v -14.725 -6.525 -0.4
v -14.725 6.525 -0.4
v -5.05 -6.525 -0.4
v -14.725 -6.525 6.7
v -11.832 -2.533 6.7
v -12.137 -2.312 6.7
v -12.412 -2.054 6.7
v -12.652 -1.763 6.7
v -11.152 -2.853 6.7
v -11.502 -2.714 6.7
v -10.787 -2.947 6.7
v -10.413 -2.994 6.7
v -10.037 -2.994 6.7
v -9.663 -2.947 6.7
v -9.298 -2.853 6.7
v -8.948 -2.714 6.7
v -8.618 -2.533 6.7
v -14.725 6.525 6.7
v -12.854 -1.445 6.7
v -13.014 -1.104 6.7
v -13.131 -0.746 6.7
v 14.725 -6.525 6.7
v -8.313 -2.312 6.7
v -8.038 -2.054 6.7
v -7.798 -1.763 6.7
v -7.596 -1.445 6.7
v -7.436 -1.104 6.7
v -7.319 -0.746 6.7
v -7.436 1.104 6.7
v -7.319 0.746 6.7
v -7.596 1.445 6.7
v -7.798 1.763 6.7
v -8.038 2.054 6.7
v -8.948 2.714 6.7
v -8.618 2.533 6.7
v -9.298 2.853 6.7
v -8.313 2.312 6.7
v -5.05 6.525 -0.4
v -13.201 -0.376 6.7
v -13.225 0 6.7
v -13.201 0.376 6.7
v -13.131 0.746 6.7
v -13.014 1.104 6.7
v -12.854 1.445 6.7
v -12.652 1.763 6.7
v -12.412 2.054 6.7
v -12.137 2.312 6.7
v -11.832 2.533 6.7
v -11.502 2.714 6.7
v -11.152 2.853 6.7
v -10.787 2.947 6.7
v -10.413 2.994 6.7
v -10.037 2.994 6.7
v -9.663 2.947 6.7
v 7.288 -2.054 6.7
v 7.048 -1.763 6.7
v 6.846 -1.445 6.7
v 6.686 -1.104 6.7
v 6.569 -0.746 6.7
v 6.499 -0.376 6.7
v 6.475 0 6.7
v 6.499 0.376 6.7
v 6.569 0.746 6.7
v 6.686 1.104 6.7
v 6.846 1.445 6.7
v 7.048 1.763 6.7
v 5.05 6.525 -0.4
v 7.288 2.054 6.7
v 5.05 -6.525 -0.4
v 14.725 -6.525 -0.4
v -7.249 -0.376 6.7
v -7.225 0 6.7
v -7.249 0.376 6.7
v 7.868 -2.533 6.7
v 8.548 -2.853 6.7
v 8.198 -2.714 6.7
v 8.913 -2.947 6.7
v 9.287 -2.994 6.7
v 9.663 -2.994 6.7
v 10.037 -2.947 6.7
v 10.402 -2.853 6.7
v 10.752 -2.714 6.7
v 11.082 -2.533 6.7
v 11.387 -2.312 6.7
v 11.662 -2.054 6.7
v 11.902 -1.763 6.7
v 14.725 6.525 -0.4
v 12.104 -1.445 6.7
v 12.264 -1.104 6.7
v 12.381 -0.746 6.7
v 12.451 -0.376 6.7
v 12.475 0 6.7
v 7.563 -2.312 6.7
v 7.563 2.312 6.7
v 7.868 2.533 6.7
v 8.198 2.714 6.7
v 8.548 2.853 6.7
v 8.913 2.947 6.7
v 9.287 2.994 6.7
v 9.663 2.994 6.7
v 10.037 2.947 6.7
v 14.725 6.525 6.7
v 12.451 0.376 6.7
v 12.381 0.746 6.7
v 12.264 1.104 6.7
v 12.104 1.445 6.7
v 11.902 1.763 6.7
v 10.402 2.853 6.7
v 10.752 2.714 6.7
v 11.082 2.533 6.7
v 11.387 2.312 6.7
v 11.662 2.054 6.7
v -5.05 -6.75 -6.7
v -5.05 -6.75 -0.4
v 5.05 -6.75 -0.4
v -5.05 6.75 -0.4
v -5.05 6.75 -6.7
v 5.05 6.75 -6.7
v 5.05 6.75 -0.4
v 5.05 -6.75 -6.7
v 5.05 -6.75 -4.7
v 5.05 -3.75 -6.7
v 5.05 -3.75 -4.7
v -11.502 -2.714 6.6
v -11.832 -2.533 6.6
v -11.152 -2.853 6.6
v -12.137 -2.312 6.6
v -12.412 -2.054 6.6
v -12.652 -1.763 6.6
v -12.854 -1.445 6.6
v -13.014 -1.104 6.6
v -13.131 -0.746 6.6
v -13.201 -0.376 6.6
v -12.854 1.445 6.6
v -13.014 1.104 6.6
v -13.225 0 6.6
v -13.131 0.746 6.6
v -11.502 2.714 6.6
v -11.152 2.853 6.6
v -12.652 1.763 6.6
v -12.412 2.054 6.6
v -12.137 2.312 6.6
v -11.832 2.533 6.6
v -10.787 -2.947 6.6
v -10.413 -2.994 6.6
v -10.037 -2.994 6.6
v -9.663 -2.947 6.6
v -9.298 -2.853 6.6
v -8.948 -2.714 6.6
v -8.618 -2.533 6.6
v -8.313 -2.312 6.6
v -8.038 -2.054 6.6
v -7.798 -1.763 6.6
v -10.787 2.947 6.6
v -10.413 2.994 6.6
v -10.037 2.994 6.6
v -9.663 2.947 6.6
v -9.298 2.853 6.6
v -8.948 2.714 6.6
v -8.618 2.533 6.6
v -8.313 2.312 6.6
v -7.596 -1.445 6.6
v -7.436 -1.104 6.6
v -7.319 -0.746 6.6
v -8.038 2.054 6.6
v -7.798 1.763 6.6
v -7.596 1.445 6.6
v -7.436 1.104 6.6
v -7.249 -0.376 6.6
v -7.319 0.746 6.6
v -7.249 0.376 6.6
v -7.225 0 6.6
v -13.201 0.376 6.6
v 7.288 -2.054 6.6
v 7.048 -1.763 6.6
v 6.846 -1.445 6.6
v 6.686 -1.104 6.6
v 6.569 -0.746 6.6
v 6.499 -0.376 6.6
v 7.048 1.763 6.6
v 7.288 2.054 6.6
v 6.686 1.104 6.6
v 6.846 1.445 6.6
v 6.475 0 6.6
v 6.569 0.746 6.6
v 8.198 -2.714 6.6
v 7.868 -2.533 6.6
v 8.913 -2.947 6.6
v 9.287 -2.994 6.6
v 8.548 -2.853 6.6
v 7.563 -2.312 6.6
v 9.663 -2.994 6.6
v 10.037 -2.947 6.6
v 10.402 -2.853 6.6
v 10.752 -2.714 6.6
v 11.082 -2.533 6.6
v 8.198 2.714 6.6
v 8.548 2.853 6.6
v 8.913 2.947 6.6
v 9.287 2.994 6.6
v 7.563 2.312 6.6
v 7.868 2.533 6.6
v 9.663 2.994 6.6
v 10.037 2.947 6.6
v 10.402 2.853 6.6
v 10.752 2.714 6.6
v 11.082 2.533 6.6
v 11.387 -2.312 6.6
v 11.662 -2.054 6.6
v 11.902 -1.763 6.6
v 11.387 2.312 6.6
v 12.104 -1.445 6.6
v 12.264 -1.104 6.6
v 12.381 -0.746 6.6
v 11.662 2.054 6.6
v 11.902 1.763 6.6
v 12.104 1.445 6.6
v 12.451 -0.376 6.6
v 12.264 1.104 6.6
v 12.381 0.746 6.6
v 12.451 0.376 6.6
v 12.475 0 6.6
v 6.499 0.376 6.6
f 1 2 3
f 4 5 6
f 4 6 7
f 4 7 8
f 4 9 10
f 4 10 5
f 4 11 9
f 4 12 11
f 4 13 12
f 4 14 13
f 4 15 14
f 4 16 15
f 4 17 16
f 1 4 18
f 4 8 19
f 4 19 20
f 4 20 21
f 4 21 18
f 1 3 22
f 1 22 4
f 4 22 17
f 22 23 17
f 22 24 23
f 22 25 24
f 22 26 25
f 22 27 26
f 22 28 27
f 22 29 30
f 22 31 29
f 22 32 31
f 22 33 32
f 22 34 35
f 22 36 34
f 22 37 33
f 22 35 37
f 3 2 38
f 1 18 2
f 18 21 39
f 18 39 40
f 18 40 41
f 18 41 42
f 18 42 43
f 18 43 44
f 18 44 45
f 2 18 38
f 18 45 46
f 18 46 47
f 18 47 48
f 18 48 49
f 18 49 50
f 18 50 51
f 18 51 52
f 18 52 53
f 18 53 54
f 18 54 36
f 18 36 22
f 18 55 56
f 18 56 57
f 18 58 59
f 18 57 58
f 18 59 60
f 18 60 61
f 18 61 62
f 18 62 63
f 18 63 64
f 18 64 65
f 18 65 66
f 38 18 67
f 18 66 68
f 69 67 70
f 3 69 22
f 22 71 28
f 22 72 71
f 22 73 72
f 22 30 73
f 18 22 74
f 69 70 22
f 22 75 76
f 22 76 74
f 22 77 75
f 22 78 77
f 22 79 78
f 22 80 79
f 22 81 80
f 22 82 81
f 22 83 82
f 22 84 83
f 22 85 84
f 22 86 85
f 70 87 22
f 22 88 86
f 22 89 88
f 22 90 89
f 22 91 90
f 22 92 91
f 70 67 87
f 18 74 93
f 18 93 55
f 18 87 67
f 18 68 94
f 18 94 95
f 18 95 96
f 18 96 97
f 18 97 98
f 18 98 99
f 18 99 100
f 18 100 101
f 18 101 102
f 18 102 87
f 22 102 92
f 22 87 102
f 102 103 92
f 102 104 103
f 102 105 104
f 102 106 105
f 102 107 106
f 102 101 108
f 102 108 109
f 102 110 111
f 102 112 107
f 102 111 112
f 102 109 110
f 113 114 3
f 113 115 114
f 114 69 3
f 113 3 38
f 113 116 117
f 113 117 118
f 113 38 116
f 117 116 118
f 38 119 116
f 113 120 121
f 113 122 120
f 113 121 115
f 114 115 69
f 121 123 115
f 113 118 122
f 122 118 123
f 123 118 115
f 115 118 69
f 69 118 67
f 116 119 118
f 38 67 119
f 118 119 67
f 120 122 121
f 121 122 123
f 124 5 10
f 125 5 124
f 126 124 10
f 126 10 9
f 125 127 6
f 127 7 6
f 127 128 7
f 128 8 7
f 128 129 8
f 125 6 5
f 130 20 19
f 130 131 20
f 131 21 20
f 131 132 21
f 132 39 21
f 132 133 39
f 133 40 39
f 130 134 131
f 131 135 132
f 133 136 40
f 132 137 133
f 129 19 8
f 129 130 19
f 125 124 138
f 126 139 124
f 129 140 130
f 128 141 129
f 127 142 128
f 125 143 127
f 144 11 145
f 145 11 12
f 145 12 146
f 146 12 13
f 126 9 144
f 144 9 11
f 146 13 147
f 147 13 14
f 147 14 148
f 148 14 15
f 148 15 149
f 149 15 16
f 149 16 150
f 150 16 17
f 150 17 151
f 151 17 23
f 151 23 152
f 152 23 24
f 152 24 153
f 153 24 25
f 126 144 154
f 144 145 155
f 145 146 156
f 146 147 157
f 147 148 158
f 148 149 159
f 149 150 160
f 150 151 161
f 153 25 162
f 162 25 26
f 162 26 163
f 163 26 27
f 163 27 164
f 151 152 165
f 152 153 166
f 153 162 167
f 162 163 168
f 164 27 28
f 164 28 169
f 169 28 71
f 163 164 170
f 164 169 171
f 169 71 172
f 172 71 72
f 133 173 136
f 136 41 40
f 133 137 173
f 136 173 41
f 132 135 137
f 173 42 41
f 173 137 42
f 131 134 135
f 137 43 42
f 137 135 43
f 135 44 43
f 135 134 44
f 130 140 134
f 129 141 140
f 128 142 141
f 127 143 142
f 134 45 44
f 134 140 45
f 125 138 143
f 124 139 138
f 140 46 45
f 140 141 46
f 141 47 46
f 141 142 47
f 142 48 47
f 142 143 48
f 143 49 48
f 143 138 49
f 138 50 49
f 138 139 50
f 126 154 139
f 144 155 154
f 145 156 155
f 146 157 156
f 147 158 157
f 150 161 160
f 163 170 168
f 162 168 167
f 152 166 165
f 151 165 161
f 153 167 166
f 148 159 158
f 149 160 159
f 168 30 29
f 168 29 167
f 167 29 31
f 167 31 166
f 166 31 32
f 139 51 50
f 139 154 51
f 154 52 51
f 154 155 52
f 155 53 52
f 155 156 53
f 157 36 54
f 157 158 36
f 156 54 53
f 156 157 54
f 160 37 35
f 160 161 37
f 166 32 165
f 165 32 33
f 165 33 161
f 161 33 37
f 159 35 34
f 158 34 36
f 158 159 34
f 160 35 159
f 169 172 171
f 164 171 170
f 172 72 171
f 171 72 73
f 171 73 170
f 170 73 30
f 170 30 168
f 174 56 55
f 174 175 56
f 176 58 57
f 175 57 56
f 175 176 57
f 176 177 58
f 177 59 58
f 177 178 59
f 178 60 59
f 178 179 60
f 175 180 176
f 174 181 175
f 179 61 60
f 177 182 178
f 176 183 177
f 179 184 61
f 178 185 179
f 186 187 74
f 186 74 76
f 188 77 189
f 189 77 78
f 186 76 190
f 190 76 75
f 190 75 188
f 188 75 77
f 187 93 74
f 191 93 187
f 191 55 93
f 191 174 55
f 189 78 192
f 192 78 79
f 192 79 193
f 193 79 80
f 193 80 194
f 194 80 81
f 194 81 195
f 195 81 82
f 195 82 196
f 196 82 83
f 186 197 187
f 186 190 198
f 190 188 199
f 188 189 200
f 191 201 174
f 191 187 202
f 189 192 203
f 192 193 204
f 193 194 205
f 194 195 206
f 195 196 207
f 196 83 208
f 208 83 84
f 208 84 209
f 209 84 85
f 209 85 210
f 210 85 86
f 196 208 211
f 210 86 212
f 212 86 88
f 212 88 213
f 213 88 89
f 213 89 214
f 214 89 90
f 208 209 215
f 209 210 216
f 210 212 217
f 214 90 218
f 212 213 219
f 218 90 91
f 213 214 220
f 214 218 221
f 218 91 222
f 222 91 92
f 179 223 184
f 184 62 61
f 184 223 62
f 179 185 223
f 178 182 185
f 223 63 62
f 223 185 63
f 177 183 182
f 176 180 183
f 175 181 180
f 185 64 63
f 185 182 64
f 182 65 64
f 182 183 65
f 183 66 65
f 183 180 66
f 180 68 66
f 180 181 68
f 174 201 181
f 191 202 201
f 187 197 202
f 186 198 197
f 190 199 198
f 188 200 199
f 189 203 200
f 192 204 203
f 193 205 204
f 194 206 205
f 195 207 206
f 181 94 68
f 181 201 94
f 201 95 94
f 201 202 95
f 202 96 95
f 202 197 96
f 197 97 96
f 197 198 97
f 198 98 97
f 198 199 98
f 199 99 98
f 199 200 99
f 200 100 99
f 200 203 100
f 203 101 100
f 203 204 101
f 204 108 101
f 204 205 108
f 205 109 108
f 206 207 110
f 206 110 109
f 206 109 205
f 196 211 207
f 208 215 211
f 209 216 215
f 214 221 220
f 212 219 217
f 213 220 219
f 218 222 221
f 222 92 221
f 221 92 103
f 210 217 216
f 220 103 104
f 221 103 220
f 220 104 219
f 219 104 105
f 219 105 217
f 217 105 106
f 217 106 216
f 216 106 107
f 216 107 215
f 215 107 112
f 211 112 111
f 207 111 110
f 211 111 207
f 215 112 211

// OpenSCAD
// Sharp GP2Y0D413K0F Distance Sensor Modeling
// Units: mm

$fn = 50;

// --- Dimensions from Datasheet ---
total_width = 29.45;
total_height = 13.5;
lens_case_height = 13.05; // From side view
lens_case_depth = 7.1;    // From side view
pwb_depth = 6.3;          // From side view
total_depth = lens_case_depth + pwb_depth;

lens_dist_from_edge = 4.5;
lens_spacing = 19.7;
lens_diameter = 6.0;      // Estimated from visual scale

connector_width = 10.1;
connector_height = 3.0;   // Estimated

// --- Coordinate Transformation ---
// The origin (0,0,0) is the center of the bounding box.
// Z+ is the lens face, Z- is the PWB/Connector side.

module sensor_gp2y0d413k0f() {
    union() {
        // 1. Main Lens Case (Front part)
        // Positioned so the front face is at Z = total_depth / 2
        translate([0, 0, (total_depth / 2) - (lens_case_depth / 2)])
        cube([total_width, lens_case_height, lens_case_depth], center = true);

        // 2. PWB / Base part (Back part)
        // Positioned so the back face is at Z = -total_depth / 2
        translate([0, 0, (-total_depth / 2) + (pwb_depth / 2)])
        cube([connector_width, total_height, pwb_depth], center = true);
        
        // 3. Connector (Added detail at the bottom)
        translate([0, -(total_height/2) + (connector_height/2), -total_depth/2 + 1])
        cube([connector_width, connector_height, 2], center = true);
    }

    // Subtract Lens Holes
    difference() {
        // Dummy object to perform subtraction on the whole assembly
        // (The union above is used for the actual geometry)
        // We use a large cylinder to clear the front face
        translate([0,0,0]) cube([total_width, total_height, total_depth], center=true);
        
        // Left Lens (Light Emitter)
        translate([-(total_width/2) + lens_dist_from_edge, 0, total_depth/2])
        cylinder(h = lens_case_depth + 2, d = lens_diameter, center = false);
        
        // Right Lens (Light Detector)
        translate([-(total_width/2) + lens_dist_from_edge + lens_spacing, 0, total_depth/2])
        cylinder(h = lens_case_depth + 2, d = lens_diameter, center = false);
    }
}

// Note: To correctly use 'difference' with the 'union' above, 
// we must structure the code to subtract from the union.
// Revised structure for OpenSCAD logic:

module final_model() {
    difference() {
        // The body
        union() {
            // Lens Case
            translate([0, 0, (total_depth / 2) - (lens_case_depth / 2)])
            cube([total_width, lens_case_height, lens_case_depth], center = true);

            // PWB/Base
            translate([0, 0, (-total_depth / 2) + (pwb_depth / 2)])
            cube([connector_width, total_height, pwb_depth], center = true);
            
            // Connector protrusion
            translate([0, -(total_height/2) + (connector_height/2), -total_depth/2 + 1])
            cube([connector_width, connector_height, 2], center = true);
        }

        // Subtract Lens Holes
        // Left Lens
        translate([-(total_width/2) + lens_dist_from_edge, 0, total_depth/2 - 0.1])
        cylinder(h = lens_case_depth + 1, d = lens_diameter);
        
        // Right Lens
        translate([-(total_width/2) + lens_dist_from_edge + lens_spacing, 0, total_depth/2 - 0.1])
        cylinder(h = lens_case_depth + 1, d = lens_diameter);
    }
}

// Render the final model
final_model();

// --- Debugging Info ---
// Width:  29.45 mm
// Height: 13.50 mm
// Depth:  13.40 mm
